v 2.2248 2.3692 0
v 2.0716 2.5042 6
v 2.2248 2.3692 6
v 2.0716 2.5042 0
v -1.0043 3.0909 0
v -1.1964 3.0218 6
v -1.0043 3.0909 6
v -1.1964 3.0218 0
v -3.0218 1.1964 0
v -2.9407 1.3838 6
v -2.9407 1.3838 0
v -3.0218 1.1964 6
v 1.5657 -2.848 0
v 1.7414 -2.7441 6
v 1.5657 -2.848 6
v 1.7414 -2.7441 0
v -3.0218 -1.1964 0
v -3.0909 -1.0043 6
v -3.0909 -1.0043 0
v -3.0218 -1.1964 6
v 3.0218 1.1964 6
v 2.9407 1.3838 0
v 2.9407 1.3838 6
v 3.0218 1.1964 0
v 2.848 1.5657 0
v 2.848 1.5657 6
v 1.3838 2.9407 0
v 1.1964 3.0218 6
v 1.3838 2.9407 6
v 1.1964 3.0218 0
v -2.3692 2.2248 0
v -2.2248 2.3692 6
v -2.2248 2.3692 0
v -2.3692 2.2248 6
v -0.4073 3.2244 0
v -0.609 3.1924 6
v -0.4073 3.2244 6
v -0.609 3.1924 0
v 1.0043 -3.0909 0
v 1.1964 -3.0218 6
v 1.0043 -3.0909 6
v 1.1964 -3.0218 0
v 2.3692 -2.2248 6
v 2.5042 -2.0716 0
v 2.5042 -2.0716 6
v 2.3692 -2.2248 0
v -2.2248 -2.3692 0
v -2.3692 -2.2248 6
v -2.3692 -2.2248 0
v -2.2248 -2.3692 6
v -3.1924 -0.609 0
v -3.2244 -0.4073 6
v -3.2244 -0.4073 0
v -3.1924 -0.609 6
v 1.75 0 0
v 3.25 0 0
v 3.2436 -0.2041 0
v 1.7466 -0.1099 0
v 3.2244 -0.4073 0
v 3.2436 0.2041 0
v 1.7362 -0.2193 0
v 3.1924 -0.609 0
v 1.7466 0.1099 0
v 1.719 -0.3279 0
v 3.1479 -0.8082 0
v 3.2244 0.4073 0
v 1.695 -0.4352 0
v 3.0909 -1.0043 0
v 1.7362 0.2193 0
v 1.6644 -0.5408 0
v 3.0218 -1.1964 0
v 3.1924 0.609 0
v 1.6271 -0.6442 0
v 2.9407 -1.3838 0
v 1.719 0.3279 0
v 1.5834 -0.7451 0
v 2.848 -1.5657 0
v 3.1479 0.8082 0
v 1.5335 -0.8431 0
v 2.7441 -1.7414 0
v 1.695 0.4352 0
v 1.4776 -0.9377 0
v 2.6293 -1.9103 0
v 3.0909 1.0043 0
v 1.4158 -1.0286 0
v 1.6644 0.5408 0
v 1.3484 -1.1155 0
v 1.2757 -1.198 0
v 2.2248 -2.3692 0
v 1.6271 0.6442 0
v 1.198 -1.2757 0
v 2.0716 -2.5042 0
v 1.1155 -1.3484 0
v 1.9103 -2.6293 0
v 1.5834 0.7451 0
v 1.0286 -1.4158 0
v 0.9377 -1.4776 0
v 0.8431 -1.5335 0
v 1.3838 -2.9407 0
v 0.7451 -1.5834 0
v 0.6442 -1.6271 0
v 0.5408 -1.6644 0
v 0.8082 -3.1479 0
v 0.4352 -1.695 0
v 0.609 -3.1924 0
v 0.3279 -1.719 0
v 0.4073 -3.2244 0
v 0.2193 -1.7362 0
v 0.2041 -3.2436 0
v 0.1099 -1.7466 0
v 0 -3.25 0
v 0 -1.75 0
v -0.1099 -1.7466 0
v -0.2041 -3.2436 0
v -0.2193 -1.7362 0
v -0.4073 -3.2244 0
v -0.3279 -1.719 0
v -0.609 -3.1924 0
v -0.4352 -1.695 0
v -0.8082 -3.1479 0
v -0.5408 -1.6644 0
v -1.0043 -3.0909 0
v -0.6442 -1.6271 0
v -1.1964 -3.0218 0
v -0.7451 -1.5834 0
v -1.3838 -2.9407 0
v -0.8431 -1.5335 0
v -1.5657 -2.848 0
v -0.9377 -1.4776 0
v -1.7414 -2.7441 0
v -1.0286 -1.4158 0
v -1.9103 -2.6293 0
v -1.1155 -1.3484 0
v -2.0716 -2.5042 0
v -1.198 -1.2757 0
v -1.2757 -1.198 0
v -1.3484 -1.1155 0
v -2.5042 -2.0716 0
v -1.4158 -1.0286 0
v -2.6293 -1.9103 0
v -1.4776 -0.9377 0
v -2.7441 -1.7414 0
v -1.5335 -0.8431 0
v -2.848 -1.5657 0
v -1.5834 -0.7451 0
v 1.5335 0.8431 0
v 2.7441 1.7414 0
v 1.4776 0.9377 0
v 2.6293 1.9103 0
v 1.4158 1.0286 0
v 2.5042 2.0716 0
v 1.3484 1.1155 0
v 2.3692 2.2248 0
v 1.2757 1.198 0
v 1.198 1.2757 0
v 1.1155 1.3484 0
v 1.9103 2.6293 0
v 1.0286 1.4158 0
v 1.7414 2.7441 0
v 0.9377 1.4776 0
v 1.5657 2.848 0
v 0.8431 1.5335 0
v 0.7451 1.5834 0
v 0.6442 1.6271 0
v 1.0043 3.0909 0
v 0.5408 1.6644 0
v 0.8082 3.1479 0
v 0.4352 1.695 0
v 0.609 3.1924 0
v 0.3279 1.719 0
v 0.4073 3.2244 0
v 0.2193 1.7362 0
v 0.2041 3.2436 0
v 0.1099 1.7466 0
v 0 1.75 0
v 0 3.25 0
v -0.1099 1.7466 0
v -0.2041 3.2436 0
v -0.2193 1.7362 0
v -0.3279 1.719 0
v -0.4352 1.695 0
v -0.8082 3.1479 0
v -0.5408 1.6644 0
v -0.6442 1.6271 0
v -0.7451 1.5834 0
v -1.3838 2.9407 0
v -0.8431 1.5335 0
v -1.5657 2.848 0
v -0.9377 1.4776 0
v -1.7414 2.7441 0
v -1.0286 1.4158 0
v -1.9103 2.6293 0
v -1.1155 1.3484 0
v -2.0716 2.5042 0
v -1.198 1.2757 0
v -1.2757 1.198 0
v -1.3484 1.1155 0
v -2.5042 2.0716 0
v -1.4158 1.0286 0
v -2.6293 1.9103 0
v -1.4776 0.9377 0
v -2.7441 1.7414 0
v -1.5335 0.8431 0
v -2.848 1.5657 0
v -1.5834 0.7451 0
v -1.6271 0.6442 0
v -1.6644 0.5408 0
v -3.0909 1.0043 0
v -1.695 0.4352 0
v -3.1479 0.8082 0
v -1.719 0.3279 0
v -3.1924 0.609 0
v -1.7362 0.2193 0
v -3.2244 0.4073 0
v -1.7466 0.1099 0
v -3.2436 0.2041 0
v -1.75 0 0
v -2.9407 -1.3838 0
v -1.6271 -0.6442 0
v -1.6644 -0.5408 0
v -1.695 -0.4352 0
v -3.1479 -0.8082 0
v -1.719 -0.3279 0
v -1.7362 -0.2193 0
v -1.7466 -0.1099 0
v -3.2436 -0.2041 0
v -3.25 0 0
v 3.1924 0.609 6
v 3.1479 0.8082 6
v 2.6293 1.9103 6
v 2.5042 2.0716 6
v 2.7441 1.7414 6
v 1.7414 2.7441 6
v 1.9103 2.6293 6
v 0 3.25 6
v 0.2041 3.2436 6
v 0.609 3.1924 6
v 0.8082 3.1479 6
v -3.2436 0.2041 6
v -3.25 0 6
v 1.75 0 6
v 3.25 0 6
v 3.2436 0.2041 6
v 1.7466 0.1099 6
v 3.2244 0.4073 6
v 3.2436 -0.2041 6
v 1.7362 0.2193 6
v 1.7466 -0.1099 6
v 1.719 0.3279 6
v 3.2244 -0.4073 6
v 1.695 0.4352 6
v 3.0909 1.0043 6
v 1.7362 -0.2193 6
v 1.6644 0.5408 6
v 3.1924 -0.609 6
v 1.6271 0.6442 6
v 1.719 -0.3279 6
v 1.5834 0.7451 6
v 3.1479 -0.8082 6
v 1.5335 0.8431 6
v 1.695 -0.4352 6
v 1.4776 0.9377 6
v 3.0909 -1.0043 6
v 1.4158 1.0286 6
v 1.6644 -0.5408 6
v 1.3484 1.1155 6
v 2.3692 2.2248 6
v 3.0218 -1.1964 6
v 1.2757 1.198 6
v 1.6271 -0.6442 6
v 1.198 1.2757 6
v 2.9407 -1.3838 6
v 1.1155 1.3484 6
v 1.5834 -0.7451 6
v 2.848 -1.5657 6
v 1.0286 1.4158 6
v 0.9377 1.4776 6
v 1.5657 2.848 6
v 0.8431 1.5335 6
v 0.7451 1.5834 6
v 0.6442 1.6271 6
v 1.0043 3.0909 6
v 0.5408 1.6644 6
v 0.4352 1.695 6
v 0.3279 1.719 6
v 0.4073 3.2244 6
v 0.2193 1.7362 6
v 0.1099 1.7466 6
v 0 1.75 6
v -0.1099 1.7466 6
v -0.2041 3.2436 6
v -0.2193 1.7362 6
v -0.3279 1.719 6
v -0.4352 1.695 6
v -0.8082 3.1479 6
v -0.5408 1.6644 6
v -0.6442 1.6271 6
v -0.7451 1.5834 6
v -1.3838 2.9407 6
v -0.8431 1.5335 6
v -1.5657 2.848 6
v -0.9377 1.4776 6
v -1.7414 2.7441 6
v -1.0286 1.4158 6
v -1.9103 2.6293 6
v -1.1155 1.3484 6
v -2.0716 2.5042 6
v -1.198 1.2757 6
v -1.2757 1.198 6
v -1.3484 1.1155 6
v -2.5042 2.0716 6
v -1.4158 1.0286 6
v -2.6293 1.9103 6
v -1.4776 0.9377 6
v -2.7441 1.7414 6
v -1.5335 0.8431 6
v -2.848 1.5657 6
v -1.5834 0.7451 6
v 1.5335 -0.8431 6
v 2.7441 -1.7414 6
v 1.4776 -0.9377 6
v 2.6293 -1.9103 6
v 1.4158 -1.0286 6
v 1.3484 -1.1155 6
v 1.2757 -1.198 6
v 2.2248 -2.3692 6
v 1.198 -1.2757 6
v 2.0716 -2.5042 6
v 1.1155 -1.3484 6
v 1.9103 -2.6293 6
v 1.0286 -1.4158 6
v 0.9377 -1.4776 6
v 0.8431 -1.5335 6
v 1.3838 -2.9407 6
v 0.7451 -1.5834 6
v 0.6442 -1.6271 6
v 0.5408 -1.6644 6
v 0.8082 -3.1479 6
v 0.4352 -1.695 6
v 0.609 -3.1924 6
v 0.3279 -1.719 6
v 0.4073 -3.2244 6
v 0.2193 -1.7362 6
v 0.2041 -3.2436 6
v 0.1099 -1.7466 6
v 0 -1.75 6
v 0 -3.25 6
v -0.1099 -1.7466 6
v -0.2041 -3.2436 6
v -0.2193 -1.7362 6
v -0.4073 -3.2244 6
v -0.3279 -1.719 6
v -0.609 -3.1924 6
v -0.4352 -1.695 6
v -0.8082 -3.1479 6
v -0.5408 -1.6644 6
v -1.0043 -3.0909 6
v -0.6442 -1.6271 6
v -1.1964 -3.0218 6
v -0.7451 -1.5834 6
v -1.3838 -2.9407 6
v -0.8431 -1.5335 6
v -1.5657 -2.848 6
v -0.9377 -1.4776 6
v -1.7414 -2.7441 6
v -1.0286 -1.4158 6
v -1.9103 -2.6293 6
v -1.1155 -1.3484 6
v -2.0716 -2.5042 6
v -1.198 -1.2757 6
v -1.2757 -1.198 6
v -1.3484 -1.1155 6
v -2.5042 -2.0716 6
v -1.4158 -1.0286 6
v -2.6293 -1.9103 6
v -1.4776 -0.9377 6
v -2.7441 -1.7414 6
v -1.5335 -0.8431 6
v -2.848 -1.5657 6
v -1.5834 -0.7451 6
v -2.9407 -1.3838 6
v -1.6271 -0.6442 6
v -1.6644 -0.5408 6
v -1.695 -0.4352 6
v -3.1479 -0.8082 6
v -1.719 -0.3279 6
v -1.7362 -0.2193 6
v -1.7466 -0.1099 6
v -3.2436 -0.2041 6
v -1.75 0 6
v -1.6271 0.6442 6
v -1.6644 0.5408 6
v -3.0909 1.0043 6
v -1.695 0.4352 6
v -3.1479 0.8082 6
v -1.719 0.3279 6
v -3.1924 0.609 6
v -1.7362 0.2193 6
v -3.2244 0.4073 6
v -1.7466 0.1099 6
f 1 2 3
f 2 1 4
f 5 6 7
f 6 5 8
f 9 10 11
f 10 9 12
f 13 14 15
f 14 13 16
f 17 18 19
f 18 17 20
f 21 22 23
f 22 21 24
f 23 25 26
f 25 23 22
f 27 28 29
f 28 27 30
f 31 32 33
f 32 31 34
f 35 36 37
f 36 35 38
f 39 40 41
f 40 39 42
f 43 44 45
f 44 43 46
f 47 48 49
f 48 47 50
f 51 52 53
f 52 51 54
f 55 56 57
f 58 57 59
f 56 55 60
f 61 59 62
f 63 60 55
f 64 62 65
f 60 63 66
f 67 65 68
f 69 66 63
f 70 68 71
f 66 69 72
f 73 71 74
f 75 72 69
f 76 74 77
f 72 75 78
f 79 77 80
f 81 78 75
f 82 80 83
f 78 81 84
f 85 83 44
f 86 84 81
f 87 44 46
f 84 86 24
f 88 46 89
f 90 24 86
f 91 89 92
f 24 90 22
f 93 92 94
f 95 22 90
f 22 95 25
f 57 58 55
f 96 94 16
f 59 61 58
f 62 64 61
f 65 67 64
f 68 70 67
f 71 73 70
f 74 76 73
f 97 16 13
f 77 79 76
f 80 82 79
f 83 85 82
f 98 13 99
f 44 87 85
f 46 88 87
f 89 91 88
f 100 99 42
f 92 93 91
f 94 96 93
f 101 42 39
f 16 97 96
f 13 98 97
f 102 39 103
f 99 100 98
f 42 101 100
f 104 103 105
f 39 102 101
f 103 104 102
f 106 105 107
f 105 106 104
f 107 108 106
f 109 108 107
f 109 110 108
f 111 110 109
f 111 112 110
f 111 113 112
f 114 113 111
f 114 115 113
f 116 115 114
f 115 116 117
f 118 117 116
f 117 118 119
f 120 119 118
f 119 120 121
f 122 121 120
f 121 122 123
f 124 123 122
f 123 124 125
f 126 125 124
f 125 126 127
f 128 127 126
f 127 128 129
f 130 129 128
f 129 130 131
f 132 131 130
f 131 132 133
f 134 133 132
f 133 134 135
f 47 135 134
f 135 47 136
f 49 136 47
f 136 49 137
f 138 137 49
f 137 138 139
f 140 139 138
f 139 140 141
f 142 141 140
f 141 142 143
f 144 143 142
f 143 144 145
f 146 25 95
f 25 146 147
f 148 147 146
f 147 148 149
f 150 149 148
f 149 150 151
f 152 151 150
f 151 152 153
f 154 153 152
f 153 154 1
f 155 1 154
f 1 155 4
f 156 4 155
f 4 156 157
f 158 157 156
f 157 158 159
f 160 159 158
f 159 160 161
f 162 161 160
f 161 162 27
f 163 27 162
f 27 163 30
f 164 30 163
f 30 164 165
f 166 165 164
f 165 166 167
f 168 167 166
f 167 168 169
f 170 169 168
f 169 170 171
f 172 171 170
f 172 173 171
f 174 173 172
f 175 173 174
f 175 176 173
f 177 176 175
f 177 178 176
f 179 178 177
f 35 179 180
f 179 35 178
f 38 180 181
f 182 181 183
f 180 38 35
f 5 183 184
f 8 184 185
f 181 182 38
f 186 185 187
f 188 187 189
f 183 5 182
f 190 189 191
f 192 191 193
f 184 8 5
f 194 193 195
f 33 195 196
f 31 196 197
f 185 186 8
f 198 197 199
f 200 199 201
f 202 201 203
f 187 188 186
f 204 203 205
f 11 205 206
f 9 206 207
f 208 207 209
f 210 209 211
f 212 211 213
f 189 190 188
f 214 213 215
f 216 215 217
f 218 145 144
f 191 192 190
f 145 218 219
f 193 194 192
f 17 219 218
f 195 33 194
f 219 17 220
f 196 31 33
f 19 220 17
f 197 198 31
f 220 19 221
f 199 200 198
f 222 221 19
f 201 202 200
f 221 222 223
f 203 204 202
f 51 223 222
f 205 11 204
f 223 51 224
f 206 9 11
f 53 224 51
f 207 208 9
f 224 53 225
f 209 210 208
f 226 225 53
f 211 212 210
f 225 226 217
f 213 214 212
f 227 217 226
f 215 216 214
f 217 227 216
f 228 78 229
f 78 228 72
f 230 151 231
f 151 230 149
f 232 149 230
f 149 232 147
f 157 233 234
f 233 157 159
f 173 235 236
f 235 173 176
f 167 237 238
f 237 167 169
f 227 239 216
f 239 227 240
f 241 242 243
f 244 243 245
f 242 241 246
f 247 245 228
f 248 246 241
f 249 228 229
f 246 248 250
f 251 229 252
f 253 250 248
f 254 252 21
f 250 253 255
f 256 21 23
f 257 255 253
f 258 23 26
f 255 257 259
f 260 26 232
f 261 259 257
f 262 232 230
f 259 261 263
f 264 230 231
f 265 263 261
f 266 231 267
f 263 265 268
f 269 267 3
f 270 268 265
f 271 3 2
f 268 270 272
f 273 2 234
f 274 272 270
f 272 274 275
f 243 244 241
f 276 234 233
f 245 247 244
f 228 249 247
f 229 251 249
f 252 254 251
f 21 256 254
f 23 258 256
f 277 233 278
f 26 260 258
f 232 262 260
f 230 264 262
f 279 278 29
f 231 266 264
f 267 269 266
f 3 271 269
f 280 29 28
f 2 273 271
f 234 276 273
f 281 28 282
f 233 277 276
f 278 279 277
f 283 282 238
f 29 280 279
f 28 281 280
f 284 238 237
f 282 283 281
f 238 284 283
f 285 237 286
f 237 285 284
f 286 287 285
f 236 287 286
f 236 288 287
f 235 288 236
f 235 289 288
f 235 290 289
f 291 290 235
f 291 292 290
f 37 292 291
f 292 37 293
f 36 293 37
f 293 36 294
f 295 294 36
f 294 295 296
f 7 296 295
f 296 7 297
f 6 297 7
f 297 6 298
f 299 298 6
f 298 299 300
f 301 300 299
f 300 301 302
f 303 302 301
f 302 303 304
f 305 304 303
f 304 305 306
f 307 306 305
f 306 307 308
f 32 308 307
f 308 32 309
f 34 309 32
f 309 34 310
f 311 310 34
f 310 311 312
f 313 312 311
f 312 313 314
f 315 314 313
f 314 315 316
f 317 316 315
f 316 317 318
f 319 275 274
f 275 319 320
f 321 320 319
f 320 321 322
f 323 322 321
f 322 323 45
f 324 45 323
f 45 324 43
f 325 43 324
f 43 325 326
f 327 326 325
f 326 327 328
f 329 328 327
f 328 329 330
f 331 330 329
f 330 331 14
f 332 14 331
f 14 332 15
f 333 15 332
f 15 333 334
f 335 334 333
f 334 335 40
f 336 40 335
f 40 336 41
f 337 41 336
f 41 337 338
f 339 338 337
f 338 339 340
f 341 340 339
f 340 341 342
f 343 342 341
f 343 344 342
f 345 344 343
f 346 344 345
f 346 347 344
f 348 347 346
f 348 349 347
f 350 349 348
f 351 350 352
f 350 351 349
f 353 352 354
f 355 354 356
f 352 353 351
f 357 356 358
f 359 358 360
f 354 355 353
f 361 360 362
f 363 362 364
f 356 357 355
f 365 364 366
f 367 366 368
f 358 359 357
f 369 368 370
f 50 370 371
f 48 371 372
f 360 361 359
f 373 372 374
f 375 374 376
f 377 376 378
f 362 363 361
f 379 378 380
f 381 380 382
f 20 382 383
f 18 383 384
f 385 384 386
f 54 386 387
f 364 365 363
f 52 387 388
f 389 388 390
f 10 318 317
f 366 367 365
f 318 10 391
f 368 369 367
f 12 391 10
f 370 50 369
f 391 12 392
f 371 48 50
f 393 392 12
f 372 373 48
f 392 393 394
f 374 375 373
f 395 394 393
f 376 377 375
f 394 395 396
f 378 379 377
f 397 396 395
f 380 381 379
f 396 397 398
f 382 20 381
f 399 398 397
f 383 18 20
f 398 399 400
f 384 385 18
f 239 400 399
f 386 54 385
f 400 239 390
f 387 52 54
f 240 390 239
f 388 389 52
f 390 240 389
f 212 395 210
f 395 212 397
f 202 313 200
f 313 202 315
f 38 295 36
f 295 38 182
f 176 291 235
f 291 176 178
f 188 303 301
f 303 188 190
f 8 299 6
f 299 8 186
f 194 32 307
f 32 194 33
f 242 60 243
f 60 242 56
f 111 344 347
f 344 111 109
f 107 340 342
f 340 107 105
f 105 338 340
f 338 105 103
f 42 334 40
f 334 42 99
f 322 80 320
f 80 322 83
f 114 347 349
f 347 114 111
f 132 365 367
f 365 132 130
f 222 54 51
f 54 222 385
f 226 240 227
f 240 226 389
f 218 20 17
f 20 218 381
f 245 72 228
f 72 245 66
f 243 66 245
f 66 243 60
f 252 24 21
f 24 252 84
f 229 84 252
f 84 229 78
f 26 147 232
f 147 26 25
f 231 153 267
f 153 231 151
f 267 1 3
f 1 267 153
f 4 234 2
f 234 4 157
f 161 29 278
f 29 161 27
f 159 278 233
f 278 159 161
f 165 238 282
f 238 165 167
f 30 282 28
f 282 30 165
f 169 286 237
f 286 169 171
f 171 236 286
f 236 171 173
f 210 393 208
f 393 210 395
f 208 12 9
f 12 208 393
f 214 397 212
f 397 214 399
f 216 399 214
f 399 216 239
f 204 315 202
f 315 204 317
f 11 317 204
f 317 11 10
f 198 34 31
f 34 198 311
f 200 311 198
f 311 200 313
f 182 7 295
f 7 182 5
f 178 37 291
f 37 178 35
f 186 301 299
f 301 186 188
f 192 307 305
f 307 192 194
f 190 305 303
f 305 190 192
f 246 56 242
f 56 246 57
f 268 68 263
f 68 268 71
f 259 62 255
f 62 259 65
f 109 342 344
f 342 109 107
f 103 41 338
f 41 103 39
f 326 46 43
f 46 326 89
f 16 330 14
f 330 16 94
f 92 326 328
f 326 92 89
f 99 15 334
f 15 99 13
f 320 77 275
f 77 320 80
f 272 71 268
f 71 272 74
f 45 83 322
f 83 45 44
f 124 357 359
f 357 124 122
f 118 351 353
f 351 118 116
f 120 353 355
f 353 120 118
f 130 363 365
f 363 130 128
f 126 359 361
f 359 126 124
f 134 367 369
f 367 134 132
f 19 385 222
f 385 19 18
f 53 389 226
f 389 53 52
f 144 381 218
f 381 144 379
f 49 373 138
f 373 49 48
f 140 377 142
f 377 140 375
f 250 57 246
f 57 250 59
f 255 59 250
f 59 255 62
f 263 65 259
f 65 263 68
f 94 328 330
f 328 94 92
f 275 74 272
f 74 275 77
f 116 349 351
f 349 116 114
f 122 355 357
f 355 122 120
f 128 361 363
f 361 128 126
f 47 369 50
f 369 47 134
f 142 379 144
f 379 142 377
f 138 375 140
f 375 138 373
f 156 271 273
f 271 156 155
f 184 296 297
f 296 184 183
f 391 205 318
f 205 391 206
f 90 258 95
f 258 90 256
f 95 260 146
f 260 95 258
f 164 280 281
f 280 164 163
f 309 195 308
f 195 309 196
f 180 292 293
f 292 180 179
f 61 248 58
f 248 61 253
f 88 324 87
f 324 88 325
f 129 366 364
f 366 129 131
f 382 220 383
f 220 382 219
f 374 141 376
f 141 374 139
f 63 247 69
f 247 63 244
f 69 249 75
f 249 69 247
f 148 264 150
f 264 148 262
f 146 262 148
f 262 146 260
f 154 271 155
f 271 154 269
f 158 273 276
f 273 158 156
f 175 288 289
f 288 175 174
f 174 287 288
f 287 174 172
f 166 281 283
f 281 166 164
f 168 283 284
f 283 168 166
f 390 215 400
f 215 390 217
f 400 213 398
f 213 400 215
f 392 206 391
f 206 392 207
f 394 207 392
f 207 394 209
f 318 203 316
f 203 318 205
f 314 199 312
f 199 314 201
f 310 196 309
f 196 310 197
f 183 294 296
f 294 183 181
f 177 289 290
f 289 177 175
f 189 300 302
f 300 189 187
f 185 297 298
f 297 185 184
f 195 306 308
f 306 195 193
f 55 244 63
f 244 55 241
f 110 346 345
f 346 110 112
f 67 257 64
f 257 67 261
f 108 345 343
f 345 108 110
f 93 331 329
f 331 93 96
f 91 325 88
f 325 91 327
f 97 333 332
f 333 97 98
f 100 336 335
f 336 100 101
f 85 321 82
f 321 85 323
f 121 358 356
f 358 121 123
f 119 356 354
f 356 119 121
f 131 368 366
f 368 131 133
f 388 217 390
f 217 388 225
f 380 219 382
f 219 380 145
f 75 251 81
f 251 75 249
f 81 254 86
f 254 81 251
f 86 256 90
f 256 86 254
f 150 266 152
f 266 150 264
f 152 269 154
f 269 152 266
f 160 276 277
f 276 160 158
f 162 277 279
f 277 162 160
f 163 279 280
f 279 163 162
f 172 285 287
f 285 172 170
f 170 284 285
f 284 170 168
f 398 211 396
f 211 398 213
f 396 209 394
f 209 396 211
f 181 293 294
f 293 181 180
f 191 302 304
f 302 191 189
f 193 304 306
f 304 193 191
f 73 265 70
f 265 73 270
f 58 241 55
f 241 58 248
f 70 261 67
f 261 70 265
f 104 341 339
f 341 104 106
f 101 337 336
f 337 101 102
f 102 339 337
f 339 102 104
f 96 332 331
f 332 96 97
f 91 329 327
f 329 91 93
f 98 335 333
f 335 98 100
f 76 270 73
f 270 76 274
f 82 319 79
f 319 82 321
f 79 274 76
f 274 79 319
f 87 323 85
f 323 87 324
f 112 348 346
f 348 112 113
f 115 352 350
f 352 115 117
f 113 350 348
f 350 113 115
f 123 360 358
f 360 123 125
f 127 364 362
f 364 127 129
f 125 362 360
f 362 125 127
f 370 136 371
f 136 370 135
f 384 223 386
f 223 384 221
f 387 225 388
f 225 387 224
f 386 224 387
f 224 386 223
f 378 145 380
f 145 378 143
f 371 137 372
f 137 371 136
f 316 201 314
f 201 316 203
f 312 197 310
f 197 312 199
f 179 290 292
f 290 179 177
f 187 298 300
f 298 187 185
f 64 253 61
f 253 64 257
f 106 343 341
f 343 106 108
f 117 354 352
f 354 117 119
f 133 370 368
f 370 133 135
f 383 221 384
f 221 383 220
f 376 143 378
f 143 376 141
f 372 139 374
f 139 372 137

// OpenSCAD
$fn=100;
height=6;
d = 3.5;
D = d + 2;

difference(){
    cylinder(h=height, d=D+1);
    translate([0, 0, -1])cylinder(h=height+2, d=d);
}
